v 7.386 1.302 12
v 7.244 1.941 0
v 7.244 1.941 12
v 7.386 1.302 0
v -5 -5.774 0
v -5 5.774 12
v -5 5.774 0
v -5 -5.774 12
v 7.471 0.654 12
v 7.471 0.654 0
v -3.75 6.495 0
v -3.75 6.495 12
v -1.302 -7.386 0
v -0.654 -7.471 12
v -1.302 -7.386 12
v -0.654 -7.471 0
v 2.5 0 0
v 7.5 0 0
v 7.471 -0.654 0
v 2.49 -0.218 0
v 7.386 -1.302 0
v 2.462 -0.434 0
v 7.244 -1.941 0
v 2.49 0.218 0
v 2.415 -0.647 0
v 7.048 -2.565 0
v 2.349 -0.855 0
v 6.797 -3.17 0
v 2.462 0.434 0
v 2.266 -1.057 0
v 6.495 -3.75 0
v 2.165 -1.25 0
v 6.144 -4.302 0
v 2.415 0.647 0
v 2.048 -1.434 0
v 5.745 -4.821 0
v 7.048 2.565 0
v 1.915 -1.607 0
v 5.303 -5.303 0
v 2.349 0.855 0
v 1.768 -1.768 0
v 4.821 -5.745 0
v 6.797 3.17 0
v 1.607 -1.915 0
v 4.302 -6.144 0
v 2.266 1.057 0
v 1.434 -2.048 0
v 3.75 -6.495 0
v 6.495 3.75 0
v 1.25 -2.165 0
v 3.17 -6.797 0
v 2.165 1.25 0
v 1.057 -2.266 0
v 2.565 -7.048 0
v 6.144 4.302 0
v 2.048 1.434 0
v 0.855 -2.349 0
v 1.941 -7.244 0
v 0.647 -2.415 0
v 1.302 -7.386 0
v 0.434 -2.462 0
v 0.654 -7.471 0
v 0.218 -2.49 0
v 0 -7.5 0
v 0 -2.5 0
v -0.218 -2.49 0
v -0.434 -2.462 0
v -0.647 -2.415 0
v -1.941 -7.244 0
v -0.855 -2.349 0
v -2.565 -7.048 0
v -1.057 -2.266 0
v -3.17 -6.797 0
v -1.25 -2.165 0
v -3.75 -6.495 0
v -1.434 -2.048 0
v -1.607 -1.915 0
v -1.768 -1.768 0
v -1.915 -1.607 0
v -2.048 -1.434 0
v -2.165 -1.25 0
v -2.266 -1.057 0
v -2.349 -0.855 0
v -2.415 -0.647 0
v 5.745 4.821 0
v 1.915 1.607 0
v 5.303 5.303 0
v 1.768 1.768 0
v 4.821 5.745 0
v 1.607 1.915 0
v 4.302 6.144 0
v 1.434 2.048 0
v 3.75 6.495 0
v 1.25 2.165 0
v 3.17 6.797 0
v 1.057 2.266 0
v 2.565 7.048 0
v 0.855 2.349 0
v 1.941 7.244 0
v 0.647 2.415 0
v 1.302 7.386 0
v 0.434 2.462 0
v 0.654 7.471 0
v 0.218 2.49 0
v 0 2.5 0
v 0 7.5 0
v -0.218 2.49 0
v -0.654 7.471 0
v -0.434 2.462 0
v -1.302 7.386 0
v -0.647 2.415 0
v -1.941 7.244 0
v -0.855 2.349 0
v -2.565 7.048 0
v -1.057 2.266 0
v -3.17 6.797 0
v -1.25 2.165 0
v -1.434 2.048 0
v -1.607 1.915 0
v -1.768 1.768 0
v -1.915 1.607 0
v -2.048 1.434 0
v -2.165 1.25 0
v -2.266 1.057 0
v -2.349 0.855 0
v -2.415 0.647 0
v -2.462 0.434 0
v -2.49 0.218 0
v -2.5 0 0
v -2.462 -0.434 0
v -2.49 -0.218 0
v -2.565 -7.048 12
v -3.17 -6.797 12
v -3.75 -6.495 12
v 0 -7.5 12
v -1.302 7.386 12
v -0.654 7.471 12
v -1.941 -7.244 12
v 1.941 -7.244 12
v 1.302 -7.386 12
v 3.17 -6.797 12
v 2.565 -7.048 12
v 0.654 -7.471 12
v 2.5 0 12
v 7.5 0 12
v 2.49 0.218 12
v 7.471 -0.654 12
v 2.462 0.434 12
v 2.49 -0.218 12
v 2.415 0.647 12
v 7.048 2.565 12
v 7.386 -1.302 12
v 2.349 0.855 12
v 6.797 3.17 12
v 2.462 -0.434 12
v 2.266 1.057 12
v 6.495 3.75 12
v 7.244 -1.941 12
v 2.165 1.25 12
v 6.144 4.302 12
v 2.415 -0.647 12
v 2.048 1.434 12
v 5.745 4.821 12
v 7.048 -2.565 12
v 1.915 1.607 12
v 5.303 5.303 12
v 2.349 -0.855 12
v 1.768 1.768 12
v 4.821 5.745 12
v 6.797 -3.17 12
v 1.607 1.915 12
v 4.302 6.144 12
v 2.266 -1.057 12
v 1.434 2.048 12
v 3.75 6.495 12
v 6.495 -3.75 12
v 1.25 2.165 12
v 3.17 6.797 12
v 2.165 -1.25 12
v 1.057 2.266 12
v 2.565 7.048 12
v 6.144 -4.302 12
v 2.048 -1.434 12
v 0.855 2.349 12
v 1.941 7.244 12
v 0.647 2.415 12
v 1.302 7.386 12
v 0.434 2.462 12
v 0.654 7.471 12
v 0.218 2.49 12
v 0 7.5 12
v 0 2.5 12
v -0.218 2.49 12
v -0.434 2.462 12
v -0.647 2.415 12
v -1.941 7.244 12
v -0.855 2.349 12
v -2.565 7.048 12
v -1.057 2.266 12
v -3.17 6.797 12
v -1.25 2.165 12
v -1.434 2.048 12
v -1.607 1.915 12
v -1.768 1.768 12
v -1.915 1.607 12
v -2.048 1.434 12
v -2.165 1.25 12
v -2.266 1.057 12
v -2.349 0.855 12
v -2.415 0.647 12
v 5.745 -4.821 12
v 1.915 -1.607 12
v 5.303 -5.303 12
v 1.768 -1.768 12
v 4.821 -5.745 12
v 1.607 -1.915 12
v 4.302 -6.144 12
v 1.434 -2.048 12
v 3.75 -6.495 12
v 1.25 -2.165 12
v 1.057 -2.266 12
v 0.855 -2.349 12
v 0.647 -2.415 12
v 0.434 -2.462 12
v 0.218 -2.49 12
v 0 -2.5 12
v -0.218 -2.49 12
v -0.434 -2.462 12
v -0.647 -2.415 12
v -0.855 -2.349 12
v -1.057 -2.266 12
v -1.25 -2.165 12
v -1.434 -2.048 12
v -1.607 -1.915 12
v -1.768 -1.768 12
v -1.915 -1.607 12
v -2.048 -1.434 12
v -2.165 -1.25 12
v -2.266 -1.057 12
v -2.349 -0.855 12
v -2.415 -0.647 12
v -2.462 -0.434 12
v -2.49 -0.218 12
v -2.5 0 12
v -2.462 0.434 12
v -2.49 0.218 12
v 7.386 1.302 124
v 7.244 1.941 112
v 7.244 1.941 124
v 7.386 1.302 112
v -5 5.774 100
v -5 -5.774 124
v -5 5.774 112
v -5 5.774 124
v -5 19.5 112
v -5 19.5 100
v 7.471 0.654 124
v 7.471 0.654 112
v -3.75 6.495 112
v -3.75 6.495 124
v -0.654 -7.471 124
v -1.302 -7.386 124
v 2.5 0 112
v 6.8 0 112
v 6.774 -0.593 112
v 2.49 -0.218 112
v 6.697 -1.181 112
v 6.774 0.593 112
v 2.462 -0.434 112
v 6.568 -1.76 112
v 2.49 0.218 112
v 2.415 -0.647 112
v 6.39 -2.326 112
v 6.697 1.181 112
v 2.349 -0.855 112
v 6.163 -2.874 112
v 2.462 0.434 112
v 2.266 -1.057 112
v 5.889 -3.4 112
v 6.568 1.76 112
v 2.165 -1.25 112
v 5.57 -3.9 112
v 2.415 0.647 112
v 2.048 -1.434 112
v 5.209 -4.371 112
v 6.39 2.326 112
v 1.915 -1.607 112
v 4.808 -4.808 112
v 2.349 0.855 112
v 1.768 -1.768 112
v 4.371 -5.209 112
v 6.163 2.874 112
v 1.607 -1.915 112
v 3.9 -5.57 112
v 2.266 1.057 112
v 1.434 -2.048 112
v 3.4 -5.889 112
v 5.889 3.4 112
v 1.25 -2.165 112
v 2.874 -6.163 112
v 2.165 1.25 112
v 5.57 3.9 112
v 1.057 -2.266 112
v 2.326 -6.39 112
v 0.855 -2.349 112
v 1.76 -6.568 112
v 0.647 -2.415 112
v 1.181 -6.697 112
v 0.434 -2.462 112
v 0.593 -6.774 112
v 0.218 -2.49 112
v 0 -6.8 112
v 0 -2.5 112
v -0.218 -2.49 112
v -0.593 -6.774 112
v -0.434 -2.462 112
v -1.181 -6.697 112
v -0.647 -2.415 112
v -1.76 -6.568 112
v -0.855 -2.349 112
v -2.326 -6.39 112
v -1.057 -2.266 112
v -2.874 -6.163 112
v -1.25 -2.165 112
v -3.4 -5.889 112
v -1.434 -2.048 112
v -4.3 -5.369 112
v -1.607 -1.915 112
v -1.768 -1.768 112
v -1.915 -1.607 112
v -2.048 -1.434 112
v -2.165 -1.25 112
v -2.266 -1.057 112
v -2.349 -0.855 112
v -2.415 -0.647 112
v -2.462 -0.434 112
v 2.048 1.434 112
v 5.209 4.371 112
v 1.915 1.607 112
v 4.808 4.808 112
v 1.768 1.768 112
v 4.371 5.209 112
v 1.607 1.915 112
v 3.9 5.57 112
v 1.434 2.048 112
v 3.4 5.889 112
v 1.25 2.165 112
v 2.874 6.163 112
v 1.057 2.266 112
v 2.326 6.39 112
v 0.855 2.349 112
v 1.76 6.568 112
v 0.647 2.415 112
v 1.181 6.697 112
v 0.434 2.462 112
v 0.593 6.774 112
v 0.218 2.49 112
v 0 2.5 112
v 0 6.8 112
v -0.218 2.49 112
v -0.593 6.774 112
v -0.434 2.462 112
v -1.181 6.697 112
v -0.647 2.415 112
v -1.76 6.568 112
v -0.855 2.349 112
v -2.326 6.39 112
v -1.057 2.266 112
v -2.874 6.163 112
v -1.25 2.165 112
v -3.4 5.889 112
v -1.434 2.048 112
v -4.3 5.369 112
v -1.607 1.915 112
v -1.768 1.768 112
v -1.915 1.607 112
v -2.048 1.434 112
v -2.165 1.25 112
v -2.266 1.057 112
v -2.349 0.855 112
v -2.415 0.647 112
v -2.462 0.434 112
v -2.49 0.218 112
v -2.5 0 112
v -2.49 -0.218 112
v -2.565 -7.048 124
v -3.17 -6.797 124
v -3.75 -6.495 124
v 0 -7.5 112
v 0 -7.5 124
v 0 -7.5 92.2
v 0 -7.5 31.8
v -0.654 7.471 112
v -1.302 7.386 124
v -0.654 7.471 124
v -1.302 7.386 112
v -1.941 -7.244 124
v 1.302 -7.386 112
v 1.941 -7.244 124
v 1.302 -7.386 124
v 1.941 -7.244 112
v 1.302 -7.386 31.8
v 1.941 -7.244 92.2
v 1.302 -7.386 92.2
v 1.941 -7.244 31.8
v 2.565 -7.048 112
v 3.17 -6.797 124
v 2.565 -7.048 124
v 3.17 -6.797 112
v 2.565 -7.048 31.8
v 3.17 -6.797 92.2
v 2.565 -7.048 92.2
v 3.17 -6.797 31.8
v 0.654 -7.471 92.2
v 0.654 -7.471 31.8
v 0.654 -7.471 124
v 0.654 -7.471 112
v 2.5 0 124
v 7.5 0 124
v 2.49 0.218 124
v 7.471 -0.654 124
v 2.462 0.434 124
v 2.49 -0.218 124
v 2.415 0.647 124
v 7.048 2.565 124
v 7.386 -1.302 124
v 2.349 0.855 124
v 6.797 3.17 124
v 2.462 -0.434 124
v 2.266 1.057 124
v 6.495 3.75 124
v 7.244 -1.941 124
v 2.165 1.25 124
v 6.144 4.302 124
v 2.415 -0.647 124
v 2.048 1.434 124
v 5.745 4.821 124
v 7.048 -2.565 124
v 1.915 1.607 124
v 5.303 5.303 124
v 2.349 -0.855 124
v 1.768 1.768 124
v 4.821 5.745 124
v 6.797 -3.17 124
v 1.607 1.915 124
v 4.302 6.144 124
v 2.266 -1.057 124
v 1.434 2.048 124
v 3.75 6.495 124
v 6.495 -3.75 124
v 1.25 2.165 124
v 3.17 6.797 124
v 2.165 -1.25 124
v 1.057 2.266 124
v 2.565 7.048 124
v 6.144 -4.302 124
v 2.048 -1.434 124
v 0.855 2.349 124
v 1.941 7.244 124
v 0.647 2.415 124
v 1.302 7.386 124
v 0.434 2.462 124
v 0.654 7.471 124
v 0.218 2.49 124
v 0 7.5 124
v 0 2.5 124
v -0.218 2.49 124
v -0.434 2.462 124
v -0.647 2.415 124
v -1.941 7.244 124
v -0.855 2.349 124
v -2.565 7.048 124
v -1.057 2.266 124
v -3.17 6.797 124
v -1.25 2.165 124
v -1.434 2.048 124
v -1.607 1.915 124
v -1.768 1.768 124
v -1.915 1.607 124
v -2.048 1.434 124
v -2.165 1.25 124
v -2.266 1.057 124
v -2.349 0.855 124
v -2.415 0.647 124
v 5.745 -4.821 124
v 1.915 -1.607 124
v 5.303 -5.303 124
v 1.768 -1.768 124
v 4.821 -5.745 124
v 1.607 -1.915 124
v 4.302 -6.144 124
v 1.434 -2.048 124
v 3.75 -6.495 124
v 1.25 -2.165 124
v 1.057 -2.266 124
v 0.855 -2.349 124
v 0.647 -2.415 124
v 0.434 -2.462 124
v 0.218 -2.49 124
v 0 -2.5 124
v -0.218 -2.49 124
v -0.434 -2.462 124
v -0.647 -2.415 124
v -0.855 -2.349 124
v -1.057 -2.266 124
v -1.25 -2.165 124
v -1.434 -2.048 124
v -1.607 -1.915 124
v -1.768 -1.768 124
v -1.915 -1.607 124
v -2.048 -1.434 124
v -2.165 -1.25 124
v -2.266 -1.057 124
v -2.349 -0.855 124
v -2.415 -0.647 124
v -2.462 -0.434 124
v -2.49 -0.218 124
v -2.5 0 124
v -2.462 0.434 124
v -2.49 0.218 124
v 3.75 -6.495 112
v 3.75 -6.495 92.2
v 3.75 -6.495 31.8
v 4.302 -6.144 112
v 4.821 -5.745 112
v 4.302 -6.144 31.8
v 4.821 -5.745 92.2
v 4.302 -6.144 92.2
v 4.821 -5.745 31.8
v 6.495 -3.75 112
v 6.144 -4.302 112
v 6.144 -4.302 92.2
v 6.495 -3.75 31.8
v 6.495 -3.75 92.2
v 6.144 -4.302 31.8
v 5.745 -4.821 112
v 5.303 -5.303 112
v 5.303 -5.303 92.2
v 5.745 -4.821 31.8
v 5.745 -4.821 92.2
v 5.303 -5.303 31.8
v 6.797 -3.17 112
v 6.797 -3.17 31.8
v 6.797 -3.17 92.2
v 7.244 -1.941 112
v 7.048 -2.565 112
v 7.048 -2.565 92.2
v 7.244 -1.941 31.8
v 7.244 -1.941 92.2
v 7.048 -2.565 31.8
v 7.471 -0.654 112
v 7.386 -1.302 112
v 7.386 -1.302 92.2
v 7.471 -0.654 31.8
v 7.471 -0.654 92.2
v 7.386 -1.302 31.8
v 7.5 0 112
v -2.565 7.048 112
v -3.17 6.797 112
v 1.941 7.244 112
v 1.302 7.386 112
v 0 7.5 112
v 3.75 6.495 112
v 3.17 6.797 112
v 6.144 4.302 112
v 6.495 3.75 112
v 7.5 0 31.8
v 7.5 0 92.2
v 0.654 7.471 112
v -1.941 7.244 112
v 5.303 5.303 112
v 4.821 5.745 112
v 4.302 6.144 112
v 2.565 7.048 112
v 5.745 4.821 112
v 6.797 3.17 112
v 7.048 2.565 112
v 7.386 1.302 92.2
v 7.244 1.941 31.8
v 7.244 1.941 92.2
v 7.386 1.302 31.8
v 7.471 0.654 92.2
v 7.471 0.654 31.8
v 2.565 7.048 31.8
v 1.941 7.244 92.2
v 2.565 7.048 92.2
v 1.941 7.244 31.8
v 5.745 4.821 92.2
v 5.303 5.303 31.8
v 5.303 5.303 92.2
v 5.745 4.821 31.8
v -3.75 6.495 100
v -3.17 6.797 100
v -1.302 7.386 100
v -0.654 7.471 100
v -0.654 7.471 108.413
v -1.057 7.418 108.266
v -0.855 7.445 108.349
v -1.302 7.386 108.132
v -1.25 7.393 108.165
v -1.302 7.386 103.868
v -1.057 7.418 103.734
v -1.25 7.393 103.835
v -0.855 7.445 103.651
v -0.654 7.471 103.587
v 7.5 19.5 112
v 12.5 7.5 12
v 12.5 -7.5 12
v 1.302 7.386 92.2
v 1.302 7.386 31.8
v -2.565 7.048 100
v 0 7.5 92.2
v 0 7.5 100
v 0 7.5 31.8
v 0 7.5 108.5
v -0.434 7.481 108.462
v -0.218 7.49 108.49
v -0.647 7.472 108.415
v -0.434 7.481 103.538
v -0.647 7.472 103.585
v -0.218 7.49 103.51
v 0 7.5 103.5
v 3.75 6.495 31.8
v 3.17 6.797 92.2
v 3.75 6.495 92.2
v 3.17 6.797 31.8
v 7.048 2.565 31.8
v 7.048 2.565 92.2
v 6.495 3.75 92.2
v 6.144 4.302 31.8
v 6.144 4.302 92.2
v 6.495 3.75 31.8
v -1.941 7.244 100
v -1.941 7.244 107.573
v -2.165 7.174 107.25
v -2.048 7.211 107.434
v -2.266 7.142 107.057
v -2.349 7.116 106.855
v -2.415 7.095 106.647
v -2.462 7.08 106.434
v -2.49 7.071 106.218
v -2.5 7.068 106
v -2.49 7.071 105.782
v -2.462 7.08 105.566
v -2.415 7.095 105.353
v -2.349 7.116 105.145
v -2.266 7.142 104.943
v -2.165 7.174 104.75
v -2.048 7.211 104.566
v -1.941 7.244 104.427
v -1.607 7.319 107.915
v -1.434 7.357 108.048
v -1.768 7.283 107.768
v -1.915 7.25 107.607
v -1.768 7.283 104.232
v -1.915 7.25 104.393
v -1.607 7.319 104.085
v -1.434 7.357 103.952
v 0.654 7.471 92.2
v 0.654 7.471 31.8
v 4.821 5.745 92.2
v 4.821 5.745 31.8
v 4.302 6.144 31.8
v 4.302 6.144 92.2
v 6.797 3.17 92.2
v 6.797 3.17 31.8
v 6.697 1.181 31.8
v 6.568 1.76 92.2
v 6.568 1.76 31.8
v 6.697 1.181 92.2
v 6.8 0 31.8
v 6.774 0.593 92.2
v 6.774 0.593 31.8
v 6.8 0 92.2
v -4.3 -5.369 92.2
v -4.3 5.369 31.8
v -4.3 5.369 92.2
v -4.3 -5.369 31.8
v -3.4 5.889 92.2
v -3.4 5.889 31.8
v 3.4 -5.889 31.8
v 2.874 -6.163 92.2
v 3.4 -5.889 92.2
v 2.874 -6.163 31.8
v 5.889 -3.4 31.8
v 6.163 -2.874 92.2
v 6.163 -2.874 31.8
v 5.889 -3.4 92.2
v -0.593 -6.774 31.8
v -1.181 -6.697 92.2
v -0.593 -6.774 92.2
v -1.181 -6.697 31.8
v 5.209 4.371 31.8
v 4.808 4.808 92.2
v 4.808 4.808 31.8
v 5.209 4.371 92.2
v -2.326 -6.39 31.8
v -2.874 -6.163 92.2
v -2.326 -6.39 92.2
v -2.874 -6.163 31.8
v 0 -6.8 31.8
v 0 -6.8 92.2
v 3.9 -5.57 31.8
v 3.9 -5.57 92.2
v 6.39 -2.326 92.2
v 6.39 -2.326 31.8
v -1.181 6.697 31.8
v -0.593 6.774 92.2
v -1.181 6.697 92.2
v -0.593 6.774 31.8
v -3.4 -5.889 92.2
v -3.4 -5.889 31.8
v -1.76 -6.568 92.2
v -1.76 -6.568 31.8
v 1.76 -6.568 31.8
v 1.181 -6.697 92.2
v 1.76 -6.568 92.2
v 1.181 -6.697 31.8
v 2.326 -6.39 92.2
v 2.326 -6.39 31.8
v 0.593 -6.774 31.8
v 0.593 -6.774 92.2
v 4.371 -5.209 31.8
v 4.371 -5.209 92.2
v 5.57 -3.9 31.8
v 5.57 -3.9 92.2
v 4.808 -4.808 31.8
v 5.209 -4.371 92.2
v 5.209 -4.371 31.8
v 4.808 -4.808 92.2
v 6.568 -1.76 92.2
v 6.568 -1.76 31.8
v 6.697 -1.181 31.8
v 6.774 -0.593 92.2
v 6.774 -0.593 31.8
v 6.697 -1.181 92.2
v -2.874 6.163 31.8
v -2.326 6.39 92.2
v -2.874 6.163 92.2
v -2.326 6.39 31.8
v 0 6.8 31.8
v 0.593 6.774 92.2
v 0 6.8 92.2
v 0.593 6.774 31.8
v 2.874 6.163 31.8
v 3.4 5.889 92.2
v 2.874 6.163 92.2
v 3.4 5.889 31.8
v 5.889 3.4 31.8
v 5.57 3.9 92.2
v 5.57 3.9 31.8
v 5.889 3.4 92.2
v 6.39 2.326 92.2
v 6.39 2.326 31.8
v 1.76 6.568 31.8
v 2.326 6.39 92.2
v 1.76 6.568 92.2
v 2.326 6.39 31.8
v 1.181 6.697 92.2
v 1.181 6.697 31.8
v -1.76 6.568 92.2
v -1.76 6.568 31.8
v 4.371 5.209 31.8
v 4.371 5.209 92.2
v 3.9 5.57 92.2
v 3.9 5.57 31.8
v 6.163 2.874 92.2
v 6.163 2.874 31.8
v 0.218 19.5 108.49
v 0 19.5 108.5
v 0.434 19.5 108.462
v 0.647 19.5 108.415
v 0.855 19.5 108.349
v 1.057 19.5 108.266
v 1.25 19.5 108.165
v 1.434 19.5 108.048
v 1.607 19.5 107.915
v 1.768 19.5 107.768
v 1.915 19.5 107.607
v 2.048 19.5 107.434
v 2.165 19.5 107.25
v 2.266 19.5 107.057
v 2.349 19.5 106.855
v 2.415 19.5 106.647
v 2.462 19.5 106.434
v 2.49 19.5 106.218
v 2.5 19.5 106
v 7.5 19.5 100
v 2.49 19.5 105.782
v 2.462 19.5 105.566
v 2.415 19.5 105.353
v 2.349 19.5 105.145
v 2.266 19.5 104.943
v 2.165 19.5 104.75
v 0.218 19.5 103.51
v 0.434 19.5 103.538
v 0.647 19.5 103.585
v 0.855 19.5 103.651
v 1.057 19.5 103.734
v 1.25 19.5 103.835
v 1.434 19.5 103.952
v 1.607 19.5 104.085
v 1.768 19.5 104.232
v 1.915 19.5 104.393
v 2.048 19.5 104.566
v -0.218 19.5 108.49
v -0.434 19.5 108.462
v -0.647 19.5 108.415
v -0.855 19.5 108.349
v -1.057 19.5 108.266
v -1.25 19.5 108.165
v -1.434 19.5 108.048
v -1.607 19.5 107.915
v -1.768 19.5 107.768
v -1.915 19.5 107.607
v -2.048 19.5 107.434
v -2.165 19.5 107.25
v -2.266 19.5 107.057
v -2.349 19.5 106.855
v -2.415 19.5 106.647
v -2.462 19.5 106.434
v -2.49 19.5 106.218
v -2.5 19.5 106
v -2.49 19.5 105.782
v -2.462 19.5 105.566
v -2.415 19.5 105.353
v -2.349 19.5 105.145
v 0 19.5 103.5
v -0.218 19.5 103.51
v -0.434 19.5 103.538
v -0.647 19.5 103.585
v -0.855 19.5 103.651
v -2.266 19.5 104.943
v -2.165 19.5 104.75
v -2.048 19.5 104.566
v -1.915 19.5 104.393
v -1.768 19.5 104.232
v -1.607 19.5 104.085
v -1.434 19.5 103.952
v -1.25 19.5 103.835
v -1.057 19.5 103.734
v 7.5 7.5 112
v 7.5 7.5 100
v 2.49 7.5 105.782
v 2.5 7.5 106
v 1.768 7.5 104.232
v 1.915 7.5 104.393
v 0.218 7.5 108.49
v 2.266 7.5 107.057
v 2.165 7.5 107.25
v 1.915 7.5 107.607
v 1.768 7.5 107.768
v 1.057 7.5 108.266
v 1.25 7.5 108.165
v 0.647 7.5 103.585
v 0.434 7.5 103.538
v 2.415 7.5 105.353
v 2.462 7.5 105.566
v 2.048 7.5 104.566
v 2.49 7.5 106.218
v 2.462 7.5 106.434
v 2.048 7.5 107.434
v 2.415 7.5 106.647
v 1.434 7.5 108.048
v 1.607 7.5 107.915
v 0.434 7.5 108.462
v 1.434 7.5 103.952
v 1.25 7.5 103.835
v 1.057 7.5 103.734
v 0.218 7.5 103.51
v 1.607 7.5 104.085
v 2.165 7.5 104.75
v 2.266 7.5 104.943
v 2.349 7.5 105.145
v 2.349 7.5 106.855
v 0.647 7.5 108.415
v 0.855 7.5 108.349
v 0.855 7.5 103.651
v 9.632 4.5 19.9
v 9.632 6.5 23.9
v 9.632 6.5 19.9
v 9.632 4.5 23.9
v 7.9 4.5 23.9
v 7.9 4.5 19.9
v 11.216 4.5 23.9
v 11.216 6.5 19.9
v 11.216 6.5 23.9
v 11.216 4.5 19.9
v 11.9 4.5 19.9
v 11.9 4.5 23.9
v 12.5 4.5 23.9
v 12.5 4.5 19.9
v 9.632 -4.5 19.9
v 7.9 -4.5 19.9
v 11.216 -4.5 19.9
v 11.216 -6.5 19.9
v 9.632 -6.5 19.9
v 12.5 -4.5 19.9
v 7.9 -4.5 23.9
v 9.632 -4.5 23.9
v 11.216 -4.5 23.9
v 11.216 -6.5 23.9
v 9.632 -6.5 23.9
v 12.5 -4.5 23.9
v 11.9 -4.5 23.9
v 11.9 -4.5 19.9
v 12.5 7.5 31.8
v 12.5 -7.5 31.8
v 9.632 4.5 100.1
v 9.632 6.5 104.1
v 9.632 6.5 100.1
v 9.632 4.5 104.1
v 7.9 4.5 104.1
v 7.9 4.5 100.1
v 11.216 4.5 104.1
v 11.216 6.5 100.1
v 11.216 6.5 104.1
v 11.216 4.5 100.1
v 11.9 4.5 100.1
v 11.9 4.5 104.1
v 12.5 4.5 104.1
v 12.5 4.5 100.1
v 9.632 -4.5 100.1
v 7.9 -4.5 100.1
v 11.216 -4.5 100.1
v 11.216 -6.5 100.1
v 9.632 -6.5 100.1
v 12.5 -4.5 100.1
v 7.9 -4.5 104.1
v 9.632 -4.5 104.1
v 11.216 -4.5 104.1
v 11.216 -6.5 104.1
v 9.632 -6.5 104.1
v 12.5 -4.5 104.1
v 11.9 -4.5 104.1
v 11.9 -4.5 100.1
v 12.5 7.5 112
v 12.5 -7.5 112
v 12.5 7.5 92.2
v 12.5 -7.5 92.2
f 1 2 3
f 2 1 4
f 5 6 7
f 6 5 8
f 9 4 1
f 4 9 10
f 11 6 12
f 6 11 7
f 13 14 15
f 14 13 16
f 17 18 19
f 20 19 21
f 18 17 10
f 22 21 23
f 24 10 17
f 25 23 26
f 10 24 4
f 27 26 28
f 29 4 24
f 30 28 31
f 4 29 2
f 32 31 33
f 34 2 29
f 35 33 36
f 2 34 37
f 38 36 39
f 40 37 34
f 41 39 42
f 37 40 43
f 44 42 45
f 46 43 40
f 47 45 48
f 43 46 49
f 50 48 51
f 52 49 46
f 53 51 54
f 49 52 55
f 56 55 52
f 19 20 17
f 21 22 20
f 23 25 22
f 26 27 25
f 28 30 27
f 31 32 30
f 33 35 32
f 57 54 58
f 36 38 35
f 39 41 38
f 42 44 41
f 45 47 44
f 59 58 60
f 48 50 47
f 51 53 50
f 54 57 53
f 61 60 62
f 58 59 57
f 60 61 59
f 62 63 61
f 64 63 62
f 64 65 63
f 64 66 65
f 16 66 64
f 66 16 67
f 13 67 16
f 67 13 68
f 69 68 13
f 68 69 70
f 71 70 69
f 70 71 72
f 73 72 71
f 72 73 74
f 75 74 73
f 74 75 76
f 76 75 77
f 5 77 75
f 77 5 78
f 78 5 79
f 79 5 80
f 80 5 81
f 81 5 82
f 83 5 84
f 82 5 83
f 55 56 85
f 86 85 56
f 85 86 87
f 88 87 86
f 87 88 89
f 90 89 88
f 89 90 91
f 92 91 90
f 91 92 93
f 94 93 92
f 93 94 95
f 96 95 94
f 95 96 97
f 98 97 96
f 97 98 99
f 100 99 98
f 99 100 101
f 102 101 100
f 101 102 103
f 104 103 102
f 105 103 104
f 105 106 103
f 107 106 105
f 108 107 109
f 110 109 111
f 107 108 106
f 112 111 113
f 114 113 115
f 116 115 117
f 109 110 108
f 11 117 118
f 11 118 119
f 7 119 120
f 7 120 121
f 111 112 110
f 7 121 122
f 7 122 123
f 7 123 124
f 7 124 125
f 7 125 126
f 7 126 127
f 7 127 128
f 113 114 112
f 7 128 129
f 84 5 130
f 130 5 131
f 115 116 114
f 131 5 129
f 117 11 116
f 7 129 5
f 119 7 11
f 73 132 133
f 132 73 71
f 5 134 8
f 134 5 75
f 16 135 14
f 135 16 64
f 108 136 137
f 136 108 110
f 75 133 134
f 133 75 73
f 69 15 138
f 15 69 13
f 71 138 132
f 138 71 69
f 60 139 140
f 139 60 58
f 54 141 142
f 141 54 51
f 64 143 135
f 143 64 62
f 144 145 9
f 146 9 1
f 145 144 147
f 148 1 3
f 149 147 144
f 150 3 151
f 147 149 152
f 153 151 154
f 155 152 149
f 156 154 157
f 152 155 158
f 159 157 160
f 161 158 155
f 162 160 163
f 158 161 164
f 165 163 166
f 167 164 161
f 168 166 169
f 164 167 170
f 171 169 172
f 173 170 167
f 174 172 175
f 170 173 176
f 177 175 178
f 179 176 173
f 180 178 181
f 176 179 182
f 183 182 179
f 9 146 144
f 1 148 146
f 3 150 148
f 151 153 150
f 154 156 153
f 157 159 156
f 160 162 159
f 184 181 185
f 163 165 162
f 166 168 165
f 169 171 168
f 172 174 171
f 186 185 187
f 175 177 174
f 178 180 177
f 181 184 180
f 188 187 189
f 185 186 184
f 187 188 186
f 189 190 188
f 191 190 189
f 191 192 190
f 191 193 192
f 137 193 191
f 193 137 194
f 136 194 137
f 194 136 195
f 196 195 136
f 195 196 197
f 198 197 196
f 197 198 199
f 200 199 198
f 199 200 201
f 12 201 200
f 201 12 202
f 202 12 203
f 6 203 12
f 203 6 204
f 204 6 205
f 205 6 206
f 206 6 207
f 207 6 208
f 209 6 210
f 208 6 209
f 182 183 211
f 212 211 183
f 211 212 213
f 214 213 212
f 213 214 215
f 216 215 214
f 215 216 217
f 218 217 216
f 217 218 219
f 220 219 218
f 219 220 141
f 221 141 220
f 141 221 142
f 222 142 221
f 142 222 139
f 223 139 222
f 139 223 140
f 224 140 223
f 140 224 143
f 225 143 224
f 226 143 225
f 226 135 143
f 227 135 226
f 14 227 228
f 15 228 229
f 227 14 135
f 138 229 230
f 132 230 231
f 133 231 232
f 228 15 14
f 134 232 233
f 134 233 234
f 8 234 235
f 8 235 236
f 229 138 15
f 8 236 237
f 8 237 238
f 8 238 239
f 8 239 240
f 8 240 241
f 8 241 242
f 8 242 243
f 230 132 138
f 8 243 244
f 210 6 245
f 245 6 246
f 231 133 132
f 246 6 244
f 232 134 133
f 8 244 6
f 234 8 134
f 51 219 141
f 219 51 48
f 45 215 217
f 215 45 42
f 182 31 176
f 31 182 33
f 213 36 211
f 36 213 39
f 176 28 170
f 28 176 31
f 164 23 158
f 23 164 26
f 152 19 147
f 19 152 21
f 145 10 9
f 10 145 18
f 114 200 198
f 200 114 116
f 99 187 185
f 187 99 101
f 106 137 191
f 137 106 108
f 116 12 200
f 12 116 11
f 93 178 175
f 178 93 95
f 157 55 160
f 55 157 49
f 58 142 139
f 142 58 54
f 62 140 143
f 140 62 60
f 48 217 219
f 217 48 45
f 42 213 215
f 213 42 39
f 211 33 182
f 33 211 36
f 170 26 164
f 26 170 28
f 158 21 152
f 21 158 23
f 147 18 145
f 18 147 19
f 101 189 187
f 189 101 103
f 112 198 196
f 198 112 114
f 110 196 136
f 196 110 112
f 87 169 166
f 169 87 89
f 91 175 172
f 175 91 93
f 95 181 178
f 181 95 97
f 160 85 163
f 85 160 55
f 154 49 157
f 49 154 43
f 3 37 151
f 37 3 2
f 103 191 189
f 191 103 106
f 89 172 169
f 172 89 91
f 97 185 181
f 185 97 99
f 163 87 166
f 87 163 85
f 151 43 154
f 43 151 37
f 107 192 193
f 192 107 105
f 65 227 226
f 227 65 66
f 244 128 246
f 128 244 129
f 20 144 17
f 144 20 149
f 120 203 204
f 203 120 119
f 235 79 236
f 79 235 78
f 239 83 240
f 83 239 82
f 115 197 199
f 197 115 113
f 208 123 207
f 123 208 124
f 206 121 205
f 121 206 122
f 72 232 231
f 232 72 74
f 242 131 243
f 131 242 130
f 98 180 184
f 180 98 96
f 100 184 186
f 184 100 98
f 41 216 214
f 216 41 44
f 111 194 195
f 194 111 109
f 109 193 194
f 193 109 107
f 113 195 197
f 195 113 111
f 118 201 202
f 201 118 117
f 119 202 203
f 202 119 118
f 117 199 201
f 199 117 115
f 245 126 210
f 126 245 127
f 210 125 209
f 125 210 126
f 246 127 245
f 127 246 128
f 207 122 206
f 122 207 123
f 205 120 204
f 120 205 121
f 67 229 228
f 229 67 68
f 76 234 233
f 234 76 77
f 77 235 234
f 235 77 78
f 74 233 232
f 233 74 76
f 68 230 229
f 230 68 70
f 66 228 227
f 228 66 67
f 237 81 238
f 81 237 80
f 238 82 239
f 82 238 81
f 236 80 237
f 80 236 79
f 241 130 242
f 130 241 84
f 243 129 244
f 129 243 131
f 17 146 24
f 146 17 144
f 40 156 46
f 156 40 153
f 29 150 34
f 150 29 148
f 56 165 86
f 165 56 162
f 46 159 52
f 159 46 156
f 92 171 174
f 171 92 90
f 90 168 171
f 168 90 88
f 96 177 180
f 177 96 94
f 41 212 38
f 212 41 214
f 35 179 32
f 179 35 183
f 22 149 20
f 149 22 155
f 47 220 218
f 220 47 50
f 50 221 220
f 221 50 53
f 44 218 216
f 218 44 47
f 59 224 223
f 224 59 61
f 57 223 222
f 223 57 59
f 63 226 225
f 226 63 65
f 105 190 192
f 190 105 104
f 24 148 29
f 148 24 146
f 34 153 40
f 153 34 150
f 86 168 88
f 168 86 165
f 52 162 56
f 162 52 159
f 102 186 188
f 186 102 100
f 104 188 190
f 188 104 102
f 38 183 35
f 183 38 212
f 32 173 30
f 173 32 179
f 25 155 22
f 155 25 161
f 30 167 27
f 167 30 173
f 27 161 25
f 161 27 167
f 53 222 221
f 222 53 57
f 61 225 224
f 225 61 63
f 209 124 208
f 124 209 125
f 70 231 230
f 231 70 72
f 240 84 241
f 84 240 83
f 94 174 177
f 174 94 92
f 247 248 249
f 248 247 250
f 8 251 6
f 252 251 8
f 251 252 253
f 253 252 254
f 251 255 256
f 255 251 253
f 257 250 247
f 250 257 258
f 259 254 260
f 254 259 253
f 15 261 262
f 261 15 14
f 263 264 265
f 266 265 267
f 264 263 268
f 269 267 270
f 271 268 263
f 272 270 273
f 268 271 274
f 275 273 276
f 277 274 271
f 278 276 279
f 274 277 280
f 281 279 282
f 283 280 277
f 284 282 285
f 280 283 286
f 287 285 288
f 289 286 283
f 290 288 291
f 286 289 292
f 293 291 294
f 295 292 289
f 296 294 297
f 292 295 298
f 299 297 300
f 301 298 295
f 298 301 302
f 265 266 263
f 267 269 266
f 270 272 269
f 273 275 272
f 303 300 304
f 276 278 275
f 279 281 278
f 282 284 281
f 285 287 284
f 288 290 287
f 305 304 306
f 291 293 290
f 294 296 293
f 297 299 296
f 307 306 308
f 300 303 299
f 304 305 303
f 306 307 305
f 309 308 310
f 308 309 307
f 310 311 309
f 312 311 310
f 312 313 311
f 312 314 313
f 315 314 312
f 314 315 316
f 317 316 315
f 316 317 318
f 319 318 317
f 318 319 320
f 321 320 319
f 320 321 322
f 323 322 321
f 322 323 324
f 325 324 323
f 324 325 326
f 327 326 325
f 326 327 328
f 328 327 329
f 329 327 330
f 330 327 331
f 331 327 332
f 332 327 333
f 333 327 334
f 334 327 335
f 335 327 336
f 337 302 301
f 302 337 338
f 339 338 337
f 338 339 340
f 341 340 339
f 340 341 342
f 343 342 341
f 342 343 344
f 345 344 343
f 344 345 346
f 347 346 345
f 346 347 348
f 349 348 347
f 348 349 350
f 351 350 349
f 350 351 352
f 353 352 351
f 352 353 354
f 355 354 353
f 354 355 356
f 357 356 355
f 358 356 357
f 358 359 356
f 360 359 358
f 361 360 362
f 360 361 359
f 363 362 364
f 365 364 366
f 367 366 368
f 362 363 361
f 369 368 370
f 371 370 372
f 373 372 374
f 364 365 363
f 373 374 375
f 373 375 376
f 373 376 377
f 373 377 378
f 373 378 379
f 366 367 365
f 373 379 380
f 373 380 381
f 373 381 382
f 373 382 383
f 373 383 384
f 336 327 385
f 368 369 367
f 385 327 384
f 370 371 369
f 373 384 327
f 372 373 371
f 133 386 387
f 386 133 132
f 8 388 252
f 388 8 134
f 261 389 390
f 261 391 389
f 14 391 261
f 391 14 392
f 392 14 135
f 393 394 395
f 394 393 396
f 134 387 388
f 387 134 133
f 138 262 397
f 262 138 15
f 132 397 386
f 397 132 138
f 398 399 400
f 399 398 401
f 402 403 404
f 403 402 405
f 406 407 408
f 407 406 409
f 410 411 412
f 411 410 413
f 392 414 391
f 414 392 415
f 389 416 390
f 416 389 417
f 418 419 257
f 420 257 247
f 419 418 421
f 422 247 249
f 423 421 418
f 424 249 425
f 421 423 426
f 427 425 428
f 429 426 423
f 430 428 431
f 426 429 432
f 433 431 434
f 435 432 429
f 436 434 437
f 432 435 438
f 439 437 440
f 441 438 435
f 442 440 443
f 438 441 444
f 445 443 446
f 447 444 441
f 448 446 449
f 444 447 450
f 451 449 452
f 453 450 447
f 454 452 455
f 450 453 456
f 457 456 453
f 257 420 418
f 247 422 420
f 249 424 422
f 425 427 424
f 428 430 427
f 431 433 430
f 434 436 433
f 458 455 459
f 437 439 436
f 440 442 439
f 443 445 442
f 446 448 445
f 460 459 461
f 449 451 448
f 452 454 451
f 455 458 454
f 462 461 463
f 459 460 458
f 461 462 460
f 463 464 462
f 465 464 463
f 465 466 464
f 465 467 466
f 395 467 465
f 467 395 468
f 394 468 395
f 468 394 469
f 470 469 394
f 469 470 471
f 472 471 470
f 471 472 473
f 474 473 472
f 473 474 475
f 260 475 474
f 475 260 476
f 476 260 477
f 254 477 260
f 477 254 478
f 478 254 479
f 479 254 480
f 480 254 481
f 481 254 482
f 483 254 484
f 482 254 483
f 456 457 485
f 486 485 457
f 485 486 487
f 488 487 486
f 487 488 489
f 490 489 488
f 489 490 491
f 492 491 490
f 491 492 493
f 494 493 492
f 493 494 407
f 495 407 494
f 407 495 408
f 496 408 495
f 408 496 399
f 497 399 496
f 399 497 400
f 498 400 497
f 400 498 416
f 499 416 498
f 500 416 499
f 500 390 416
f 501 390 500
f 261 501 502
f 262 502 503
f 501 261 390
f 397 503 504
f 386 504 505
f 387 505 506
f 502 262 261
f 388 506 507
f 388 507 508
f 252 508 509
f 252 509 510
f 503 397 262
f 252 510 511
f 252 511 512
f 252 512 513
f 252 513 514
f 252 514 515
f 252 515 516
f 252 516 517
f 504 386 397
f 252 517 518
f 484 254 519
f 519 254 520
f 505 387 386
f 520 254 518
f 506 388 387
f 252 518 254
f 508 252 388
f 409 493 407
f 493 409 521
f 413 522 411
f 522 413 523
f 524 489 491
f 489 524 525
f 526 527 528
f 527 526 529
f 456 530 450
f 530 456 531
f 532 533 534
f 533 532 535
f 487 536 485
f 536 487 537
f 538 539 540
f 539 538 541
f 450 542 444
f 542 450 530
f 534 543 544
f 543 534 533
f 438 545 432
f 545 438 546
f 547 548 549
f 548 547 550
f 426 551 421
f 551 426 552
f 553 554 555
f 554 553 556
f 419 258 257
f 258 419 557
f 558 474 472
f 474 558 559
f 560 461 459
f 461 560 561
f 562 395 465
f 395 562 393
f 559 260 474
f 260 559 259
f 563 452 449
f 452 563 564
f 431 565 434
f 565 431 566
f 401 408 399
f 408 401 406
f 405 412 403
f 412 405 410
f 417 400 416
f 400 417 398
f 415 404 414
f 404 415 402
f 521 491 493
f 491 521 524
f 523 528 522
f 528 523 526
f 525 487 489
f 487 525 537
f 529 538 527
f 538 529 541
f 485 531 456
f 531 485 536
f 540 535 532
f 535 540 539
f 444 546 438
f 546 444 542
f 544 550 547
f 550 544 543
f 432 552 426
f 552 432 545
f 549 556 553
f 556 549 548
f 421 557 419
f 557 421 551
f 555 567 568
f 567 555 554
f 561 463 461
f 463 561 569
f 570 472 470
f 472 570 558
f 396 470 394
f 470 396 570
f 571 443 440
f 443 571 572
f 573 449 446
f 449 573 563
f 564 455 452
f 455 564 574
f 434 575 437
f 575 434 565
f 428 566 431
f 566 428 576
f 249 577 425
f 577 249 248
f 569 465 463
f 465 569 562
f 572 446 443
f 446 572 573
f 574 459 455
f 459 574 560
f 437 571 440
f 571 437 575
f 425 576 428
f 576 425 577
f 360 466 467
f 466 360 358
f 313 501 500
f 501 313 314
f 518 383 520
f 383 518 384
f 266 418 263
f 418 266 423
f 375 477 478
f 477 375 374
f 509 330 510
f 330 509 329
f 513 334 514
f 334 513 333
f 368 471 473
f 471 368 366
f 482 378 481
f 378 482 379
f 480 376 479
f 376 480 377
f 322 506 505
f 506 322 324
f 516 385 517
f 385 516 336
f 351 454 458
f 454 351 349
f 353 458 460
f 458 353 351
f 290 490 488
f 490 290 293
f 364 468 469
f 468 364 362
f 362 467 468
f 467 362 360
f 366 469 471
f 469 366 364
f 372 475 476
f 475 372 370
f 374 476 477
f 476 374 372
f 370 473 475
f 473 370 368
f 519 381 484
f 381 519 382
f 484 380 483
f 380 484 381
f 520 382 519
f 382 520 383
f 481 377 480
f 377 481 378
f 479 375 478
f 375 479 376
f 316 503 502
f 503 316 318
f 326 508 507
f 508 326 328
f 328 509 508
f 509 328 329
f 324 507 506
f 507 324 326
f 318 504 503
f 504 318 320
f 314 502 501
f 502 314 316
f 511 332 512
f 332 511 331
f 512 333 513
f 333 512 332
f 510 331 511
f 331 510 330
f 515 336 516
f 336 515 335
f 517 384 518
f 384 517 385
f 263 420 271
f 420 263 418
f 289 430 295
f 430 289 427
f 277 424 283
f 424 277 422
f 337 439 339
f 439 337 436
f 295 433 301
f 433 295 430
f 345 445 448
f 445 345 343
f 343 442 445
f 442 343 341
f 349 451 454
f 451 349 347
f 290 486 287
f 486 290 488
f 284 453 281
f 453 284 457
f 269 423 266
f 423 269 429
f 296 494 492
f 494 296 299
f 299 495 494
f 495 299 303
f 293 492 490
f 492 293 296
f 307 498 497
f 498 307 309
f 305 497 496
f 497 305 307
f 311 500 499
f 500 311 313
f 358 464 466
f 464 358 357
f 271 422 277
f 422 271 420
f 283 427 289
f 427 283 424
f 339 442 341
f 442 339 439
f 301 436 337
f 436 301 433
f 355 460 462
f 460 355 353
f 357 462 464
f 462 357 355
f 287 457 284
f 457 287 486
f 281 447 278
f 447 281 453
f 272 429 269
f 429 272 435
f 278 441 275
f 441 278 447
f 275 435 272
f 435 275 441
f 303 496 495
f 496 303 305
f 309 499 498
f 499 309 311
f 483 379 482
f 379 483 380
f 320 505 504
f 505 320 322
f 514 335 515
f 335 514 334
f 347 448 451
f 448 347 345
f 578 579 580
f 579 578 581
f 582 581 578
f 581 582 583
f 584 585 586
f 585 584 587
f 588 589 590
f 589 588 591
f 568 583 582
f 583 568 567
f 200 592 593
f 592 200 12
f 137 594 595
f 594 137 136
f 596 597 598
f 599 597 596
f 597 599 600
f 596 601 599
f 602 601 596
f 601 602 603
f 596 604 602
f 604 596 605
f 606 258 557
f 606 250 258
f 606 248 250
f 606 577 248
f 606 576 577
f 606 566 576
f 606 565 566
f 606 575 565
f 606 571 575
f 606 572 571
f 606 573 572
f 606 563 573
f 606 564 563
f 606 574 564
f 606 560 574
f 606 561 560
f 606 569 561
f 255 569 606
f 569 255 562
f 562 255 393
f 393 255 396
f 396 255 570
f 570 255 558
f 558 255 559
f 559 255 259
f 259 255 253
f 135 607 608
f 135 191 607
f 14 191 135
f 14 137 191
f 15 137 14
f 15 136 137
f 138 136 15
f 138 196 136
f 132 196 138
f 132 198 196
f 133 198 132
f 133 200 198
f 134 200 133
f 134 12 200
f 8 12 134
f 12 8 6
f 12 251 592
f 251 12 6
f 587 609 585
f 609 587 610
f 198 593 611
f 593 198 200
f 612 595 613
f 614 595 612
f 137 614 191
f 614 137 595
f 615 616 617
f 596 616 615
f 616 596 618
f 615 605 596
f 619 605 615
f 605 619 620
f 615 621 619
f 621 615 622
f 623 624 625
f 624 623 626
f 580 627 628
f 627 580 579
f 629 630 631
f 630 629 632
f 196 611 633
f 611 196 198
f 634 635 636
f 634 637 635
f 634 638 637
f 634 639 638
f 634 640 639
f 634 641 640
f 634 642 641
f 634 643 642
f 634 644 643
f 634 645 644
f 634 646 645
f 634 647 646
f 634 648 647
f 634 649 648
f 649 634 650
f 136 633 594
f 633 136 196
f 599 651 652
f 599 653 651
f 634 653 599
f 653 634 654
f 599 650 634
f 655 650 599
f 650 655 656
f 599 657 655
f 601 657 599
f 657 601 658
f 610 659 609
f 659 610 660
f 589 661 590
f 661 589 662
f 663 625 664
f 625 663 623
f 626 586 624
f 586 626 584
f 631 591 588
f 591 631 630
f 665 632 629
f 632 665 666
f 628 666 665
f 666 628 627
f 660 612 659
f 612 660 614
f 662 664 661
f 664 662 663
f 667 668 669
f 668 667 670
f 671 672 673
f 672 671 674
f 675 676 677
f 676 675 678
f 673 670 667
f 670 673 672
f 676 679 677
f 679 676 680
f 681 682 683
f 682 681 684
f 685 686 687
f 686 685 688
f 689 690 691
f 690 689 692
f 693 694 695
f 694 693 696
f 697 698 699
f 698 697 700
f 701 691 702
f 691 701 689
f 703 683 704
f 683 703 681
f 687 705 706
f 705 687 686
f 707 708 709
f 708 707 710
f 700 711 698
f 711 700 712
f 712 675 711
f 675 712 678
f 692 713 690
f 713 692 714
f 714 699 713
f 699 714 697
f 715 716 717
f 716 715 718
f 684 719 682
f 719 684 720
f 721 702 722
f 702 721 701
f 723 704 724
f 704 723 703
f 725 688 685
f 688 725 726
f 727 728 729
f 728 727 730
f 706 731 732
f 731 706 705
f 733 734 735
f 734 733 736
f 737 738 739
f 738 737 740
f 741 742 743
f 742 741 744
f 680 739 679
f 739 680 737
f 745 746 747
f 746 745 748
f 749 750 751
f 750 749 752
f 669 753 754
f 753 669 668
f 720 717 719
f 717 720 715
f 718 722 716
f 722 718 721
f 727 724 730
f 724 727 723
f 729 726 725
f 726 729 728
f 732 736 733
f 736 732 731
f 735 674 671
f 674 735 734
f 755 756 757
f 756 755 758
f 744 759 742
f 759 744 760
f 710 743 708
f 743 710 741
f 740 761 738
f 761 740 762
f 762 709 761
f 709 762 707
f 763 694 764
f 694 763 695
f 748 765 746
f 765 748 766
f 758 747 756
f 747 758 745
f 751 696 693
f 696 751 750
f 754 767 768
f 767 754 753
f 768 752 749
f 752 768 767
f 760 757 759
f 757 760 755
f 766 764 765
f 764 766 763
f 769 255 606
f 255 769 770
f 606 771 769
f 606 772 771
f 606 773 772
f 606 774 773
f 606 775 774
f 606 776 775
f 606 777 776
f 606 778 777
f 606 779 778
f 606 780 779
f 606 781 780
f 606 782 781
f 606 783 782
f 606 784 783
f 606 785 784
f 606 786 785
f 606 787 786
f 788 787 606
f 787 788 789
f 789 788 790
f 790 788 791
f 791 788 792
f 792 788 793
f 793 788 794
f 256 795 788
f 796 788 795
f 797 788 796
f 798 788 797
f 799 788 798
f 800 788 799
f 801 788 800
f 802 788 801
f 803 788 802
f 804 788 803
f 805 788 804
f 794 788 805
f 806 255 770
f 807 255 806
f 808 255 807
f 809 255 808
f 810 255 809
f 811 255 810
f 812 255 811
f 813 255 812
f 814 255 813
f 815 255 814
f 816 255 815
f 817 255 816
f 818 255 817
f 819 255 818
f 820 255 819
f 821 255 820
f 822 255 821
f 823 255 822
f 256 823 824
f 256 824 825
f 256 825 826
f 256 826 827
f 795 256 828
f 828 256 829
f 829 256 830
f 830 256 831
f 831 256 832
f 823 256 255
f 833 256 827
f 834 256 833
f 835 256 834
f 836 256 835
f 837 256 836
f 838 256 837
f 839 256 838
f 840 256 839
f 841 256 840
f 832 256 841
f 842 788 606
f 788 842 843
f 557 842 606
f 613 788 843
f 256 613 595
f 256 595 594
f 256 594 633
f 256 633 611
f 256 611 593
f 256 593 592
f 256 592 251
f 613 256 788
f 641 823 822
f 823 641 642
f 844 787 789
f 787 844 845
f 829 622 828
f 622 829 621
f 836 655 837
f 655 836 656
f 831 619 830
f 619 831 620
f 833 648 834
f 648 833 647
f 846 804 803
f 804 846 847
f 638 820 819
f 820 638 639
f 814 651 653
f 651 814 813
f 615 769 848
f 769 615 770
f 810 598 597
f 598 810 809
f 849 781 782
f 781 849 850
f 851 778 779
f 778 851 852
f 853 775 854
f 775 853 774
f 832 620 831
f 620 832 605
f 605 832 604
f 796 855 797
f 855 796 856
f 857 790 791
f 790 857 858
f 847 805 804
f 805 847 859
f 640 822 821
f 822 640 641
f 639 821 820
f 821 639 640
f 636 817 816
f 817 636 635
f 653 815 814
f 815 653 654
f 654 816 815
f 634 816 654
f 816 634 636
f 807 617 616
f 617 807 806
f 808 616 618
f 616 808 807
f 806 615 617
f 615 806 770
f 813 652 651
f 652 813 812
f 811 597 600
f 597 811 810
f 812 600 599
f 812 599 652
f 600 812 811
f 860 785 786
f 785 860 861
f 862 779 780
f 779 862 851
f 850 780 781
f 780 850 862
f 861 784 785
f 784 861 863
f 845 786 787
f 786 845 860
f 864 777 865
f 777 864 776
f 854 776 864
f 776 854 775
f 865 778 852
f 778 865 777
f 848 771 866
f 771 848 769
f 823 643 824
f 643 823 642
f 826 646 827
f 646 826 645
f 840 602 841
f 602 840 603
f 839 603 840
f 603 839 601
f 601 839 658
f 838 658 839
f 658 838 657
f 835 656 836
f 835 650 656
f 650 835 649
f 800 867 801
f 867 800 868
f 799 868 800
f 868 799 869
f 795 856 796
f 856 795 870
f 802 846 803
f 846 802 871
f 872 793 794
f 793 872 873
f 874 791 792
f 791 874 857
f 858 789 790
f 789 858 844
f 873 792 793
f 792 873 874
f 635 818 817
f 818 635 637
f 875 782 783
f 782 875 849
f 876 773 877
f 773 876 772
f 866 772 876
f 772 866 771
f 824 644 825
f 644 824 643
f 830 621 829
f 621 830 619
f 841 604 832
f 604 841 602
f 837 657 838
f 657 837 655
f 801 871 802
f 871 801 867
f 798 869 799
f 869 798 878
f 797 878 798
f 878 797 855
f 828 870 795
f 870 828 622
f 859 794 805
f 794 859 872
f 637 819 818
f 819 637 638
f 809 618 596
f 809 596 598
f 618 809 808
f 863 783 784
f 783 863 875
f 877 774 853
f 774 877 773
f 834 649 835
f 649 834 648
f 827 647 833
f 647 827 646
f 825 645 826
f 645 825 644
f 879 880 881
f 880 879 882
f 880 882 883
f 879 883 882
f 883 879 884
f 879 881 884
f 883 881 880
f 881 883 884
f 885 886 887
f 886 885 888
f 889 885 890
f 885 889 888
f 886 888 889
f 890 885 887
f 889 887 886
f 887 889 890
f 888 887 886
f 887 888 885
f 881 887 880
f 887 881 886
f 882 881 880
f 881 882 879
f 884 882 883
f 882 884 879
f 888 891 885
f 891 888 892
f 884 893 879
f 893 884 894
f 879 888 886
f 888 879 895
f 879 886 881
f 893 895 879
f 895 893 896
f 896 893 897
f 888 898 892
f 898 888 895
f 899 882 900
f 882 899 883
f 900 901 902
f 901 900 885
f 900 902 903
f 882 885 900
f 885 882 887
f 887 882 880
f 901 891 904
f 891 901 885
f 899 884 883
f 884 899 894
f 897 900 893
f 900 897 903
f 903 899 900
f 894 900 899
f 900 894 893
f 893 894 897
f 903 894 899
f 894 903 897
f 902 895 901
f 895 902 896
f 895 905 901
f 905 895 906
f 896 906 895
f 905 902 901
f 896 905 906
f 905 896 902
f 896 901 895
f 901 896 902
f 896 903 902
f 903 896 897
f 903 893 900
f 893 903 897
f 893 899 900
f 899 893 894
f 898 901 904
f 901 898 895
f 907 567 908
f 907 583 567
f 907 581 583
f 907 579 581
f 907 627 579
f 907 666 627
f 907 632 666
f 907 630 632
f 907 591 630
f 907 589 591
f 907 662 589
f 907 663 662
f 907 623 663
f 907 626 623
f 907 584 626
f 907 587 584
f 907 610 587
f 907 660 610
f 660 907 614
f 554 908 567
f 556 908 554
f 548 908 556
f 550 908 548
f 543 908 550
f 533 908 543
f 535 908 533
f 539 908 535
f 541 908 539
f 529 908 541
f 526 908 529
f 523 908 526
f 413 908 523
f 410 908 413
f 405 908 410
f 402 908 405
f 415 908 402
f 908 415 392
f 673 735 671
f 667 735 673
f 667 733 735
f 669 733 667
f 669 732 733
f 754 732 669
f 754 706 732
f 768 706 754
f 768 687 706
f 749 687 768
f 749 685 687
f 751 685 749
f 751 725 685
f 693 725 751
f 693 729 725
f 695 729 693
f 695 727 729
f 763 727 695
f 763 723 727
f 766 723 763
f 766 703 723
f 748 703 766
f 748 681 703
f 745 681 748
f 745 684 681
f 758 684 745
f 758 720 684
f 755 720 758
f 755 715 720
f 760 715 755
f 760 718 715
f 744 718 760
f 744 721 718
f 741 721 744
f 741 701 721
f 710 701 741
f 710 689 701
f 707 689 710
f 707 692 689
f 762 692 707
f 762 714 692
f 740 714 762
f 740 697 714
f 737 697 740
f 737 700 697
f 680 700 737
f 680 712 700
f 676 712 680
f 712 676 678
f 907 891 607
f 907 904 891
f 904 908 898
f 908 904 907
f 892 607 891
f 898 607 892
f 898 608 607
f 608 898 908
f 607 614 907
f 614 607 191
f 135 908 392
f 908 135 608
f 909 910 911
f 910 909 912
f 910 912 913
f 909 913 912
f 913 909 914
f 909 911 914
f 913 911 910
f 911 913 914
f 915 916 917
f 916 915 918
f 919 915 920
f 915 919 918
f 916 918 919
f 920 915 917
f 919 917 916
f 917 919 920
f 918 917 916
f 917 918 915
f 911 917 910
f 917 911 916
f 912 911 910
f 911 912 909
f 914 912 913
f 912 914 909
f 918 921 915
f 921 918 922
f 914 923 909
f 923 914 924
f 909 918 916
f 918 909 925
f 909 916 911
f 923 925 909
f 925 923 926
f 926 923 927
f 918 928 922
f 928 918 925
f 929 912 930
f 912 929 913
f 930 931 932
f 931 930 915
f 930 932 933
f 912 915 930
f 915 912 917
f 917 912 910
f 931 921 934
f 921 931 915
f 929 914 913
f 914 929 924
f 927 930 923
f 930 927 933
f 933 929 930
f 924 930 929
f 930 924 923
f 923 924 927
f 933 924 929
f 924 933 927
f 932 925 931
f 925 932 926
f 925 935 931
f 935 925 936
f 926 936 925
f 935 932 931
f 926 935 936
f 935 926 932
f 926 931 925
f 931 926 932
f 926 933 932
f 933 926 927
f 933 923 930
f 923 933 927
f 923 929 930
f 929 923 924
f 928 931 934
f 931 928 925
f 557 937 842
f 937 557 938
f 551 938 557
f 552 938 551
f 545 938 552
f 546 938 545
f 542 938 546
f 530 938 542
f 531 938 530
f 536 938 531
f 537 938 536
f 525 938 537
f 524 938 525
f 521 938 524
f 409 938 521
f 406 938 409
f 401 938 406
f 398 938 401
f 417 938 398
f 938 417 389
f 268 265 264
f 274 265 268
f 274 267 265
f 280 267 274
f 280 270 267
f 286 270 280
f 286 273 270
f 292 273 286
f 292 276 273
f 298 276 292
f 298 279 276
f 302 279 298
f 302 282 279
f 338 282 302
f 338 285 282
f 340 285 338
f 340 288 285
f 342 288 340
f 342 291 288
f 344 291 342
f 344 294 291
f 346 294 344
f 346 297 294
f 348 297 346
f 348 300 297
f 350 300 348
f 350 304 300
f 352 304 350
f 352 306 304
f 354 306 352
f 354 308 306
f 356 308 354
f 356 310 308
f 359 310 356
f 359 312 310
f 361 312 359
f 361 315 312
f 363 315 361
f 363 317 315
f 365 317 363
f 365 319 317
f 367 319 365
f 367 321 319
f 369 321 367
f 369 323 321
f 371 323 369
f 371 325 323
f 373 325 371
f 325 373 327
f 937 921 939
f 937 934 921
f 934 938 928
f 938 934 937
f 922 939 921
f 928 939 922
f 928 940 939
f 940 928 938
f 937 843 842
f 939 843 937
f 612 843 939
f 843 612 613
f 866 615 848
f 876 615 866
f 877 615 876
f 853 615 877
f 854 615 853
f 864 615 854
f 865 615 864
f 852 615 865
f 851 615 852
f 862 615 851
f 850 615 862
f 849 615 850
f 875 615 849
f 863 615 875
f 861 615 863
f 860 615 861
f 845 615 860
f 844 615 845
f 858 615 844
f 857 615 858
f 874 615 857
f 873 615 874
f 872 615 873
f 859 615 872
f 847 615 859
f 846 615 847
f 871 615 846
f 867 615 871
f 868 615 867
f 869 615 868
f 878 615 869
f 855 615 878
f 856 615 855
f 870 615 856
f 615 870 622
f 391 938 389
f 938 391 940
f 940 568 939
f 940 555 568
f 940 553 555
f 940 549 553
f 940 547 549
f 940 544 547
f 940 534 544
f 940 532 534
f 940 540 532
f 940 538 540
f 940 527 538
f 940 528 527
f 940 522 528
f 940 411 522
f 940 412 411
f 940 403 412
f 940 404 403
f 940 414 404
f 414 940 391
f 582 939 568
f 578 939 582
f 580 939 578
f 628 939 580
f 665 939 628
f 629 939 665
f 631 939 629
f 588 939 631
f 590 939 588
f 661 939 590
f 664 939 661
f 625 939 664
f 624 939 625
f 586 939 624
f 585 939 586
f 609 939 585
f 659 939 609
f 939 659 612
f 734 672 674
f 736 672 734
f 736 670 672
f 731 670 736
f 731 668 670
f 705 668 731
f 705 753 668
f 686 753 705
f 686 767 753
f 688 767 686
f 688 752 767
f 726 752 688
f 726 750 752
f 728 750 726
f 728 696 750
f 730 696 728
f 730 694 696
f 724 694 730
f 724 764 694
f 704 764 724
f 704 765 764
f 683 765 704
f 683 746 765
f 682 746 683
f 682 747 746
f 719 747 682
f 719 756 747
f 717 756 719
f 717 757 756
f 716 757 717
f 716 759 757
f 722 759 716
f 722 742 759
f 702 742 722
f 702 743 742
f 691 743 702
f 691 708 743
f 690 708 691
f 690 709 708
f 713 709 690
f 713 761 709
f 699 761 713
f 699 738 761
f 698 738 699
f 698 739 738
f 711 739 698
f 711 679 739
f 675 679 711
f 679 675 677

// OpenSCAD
use <BOSL/shapes.scad>
use <BOSL/metric_screws.scad>
use <BOSL/transforms.scad>
include <BOSL/constants.scad>
use <./../utils.scad>

// params
layer_h = 0.1;
nozzle = 0.4;
// fn = 360/nozzle;
fn = 72;
big = 5;

d = nozzle*6;  // perimeter thickness
c0 = layer_h*7;  // bottom thickness
c1 = layer_h*6;  // top thickness

// body params
r = 15/2;
cap_h = 5;
x_b = 2*sqrt(r^2-cap_h^2);
y_b = r + 5;
echo(x_b);
echo(y_b);

body_width = 15;
body_height = 100;

// snap params
h=4;
z=4;
L=10;
y=2;
hh=4;
alpha=30;
beta=70;

module connector_cutout() {
    union() {
        hull() {
            translate([0,body_width/6,0]) rotate([0,0,90]) cantilever_snap(h, z, L, y, hh, alpha, beta, cross=false);
            yflip() translate([0,body_width/6,0]) rotate([0,0,90]) cantilever_snap(h, z, L, y, hh, alpha, beta, cross=false);
        }
        translate([0,body_width/6,0]) rotate([0,0,90]) cantilever_snap(h, z, L, y, hh, alpha, beta);
        yflip() translate([0,body_width/6,0]) rotate([0,0,90]) cantilever_snap(h, z, L, y, hh, alpha, beta);
    }
}

module bubble_trap() {
rotate([0,0,90]) difference() {  // output block
    linear_extrude(height=5*d) teardrop2d(r=r, ang=30, cap_h=cap_h, $fn=fn);
    cyl(h=10*d, r=5/2, $fn=fn);
}
translate([0,0,5*d+body_height]) rotate([0,0,90]) difference() {  // input block
    linear_extrude(height=5*d) teardrop2d(r=r, ang=30, cap_h=cap_h, $fn=fn);
    cyl(h=10*d, r=5/2, $fn=fn);
}

translate([0,0,5*d]) difference() {  // body
union() {
        rotate([0,0,90]) difference() {
            linear_extrude(height=body_height) teardrop2d(r=r, ang=30, cap_h=cap_h, $fn=fn);
            translate([0,0,-big/2]) linear_extrude(height=body_height+big) teardrop2d(r=r-c0, ang=30, cap_h=cap_h-c0, $fn=fn);
        }
        translate([0,0,body_height-5/2*d]) {  // bleed socket
            difference() {
            hull() {
            translate([-cap_h,r,0]) cuboid([r+cap_h,5*d,5*d], align=V_RIGHT+V_BACK);
            translate([0,0,-5/2*d]) rotate([0,0,90]) 
            linear_extrude(height=5*d) teardrop2d(r=r, ang=30, cap_h=cap_h, $fn=fn);
            }
            translate([0,0,-5/2*d-big/2]) rotate([0,0,90]) linear_extrude(height=5*d+big) teardrop2d(r=r-c0, ang=30, cap_h=cap_h-c0, $fn=fn);
            }
        }
    }
    translate([0,(body_width+2*d)/2+big,body_height-5/2*d]) cyl(h=10*d, r=5/2, $fn=fn, orient=ORIENT_Y);
}

// echo((hh/2+body_width/6)*2);

translate([0,0,5*d]) difference() {  // bottom connector socket
    hull() {
    translate([r,0,0]) cuboid([L/2,2*r,body_width+2*d], align=V_UP+V_RIGHT);
    rotate([0,0,90]) linear_extrude(height=body_width+2*d) teardrop2d(r=r, ang=30, cap_h=cap_h, $fn=fn);
    }
    translate([r+3*L/2-hh-c1,0,(body_width+2*d)/2]) connector_cutout();
}

translate([0,0,5*d+body_height-(body_width+2*d)])  difference() {  // top connector socket
    hull() {
    translate([r,0,0]) cuboid([L/2,2*r,body_width+2*d], align=V_UP+V_RIGHT);
    rotate([0,0,90]) linear_extrude(height=body_width+2*d) teardrop2d(r=r, ang=30, cap_h=cap_h, $fn=fn);
    }
    translate([r+3*L/2-hh-c1,0,(body_width+2*d)/2]) connector_cutout();
}
}


cross_section = false;

if (cross_section) {
    difference() {  // cross-section
        bubble_trap();
        cuboid([body_width,500,500], align=V_LEFT);  // cross-section
    }  // cross-section
}
else {
    bubble_trap();
}
